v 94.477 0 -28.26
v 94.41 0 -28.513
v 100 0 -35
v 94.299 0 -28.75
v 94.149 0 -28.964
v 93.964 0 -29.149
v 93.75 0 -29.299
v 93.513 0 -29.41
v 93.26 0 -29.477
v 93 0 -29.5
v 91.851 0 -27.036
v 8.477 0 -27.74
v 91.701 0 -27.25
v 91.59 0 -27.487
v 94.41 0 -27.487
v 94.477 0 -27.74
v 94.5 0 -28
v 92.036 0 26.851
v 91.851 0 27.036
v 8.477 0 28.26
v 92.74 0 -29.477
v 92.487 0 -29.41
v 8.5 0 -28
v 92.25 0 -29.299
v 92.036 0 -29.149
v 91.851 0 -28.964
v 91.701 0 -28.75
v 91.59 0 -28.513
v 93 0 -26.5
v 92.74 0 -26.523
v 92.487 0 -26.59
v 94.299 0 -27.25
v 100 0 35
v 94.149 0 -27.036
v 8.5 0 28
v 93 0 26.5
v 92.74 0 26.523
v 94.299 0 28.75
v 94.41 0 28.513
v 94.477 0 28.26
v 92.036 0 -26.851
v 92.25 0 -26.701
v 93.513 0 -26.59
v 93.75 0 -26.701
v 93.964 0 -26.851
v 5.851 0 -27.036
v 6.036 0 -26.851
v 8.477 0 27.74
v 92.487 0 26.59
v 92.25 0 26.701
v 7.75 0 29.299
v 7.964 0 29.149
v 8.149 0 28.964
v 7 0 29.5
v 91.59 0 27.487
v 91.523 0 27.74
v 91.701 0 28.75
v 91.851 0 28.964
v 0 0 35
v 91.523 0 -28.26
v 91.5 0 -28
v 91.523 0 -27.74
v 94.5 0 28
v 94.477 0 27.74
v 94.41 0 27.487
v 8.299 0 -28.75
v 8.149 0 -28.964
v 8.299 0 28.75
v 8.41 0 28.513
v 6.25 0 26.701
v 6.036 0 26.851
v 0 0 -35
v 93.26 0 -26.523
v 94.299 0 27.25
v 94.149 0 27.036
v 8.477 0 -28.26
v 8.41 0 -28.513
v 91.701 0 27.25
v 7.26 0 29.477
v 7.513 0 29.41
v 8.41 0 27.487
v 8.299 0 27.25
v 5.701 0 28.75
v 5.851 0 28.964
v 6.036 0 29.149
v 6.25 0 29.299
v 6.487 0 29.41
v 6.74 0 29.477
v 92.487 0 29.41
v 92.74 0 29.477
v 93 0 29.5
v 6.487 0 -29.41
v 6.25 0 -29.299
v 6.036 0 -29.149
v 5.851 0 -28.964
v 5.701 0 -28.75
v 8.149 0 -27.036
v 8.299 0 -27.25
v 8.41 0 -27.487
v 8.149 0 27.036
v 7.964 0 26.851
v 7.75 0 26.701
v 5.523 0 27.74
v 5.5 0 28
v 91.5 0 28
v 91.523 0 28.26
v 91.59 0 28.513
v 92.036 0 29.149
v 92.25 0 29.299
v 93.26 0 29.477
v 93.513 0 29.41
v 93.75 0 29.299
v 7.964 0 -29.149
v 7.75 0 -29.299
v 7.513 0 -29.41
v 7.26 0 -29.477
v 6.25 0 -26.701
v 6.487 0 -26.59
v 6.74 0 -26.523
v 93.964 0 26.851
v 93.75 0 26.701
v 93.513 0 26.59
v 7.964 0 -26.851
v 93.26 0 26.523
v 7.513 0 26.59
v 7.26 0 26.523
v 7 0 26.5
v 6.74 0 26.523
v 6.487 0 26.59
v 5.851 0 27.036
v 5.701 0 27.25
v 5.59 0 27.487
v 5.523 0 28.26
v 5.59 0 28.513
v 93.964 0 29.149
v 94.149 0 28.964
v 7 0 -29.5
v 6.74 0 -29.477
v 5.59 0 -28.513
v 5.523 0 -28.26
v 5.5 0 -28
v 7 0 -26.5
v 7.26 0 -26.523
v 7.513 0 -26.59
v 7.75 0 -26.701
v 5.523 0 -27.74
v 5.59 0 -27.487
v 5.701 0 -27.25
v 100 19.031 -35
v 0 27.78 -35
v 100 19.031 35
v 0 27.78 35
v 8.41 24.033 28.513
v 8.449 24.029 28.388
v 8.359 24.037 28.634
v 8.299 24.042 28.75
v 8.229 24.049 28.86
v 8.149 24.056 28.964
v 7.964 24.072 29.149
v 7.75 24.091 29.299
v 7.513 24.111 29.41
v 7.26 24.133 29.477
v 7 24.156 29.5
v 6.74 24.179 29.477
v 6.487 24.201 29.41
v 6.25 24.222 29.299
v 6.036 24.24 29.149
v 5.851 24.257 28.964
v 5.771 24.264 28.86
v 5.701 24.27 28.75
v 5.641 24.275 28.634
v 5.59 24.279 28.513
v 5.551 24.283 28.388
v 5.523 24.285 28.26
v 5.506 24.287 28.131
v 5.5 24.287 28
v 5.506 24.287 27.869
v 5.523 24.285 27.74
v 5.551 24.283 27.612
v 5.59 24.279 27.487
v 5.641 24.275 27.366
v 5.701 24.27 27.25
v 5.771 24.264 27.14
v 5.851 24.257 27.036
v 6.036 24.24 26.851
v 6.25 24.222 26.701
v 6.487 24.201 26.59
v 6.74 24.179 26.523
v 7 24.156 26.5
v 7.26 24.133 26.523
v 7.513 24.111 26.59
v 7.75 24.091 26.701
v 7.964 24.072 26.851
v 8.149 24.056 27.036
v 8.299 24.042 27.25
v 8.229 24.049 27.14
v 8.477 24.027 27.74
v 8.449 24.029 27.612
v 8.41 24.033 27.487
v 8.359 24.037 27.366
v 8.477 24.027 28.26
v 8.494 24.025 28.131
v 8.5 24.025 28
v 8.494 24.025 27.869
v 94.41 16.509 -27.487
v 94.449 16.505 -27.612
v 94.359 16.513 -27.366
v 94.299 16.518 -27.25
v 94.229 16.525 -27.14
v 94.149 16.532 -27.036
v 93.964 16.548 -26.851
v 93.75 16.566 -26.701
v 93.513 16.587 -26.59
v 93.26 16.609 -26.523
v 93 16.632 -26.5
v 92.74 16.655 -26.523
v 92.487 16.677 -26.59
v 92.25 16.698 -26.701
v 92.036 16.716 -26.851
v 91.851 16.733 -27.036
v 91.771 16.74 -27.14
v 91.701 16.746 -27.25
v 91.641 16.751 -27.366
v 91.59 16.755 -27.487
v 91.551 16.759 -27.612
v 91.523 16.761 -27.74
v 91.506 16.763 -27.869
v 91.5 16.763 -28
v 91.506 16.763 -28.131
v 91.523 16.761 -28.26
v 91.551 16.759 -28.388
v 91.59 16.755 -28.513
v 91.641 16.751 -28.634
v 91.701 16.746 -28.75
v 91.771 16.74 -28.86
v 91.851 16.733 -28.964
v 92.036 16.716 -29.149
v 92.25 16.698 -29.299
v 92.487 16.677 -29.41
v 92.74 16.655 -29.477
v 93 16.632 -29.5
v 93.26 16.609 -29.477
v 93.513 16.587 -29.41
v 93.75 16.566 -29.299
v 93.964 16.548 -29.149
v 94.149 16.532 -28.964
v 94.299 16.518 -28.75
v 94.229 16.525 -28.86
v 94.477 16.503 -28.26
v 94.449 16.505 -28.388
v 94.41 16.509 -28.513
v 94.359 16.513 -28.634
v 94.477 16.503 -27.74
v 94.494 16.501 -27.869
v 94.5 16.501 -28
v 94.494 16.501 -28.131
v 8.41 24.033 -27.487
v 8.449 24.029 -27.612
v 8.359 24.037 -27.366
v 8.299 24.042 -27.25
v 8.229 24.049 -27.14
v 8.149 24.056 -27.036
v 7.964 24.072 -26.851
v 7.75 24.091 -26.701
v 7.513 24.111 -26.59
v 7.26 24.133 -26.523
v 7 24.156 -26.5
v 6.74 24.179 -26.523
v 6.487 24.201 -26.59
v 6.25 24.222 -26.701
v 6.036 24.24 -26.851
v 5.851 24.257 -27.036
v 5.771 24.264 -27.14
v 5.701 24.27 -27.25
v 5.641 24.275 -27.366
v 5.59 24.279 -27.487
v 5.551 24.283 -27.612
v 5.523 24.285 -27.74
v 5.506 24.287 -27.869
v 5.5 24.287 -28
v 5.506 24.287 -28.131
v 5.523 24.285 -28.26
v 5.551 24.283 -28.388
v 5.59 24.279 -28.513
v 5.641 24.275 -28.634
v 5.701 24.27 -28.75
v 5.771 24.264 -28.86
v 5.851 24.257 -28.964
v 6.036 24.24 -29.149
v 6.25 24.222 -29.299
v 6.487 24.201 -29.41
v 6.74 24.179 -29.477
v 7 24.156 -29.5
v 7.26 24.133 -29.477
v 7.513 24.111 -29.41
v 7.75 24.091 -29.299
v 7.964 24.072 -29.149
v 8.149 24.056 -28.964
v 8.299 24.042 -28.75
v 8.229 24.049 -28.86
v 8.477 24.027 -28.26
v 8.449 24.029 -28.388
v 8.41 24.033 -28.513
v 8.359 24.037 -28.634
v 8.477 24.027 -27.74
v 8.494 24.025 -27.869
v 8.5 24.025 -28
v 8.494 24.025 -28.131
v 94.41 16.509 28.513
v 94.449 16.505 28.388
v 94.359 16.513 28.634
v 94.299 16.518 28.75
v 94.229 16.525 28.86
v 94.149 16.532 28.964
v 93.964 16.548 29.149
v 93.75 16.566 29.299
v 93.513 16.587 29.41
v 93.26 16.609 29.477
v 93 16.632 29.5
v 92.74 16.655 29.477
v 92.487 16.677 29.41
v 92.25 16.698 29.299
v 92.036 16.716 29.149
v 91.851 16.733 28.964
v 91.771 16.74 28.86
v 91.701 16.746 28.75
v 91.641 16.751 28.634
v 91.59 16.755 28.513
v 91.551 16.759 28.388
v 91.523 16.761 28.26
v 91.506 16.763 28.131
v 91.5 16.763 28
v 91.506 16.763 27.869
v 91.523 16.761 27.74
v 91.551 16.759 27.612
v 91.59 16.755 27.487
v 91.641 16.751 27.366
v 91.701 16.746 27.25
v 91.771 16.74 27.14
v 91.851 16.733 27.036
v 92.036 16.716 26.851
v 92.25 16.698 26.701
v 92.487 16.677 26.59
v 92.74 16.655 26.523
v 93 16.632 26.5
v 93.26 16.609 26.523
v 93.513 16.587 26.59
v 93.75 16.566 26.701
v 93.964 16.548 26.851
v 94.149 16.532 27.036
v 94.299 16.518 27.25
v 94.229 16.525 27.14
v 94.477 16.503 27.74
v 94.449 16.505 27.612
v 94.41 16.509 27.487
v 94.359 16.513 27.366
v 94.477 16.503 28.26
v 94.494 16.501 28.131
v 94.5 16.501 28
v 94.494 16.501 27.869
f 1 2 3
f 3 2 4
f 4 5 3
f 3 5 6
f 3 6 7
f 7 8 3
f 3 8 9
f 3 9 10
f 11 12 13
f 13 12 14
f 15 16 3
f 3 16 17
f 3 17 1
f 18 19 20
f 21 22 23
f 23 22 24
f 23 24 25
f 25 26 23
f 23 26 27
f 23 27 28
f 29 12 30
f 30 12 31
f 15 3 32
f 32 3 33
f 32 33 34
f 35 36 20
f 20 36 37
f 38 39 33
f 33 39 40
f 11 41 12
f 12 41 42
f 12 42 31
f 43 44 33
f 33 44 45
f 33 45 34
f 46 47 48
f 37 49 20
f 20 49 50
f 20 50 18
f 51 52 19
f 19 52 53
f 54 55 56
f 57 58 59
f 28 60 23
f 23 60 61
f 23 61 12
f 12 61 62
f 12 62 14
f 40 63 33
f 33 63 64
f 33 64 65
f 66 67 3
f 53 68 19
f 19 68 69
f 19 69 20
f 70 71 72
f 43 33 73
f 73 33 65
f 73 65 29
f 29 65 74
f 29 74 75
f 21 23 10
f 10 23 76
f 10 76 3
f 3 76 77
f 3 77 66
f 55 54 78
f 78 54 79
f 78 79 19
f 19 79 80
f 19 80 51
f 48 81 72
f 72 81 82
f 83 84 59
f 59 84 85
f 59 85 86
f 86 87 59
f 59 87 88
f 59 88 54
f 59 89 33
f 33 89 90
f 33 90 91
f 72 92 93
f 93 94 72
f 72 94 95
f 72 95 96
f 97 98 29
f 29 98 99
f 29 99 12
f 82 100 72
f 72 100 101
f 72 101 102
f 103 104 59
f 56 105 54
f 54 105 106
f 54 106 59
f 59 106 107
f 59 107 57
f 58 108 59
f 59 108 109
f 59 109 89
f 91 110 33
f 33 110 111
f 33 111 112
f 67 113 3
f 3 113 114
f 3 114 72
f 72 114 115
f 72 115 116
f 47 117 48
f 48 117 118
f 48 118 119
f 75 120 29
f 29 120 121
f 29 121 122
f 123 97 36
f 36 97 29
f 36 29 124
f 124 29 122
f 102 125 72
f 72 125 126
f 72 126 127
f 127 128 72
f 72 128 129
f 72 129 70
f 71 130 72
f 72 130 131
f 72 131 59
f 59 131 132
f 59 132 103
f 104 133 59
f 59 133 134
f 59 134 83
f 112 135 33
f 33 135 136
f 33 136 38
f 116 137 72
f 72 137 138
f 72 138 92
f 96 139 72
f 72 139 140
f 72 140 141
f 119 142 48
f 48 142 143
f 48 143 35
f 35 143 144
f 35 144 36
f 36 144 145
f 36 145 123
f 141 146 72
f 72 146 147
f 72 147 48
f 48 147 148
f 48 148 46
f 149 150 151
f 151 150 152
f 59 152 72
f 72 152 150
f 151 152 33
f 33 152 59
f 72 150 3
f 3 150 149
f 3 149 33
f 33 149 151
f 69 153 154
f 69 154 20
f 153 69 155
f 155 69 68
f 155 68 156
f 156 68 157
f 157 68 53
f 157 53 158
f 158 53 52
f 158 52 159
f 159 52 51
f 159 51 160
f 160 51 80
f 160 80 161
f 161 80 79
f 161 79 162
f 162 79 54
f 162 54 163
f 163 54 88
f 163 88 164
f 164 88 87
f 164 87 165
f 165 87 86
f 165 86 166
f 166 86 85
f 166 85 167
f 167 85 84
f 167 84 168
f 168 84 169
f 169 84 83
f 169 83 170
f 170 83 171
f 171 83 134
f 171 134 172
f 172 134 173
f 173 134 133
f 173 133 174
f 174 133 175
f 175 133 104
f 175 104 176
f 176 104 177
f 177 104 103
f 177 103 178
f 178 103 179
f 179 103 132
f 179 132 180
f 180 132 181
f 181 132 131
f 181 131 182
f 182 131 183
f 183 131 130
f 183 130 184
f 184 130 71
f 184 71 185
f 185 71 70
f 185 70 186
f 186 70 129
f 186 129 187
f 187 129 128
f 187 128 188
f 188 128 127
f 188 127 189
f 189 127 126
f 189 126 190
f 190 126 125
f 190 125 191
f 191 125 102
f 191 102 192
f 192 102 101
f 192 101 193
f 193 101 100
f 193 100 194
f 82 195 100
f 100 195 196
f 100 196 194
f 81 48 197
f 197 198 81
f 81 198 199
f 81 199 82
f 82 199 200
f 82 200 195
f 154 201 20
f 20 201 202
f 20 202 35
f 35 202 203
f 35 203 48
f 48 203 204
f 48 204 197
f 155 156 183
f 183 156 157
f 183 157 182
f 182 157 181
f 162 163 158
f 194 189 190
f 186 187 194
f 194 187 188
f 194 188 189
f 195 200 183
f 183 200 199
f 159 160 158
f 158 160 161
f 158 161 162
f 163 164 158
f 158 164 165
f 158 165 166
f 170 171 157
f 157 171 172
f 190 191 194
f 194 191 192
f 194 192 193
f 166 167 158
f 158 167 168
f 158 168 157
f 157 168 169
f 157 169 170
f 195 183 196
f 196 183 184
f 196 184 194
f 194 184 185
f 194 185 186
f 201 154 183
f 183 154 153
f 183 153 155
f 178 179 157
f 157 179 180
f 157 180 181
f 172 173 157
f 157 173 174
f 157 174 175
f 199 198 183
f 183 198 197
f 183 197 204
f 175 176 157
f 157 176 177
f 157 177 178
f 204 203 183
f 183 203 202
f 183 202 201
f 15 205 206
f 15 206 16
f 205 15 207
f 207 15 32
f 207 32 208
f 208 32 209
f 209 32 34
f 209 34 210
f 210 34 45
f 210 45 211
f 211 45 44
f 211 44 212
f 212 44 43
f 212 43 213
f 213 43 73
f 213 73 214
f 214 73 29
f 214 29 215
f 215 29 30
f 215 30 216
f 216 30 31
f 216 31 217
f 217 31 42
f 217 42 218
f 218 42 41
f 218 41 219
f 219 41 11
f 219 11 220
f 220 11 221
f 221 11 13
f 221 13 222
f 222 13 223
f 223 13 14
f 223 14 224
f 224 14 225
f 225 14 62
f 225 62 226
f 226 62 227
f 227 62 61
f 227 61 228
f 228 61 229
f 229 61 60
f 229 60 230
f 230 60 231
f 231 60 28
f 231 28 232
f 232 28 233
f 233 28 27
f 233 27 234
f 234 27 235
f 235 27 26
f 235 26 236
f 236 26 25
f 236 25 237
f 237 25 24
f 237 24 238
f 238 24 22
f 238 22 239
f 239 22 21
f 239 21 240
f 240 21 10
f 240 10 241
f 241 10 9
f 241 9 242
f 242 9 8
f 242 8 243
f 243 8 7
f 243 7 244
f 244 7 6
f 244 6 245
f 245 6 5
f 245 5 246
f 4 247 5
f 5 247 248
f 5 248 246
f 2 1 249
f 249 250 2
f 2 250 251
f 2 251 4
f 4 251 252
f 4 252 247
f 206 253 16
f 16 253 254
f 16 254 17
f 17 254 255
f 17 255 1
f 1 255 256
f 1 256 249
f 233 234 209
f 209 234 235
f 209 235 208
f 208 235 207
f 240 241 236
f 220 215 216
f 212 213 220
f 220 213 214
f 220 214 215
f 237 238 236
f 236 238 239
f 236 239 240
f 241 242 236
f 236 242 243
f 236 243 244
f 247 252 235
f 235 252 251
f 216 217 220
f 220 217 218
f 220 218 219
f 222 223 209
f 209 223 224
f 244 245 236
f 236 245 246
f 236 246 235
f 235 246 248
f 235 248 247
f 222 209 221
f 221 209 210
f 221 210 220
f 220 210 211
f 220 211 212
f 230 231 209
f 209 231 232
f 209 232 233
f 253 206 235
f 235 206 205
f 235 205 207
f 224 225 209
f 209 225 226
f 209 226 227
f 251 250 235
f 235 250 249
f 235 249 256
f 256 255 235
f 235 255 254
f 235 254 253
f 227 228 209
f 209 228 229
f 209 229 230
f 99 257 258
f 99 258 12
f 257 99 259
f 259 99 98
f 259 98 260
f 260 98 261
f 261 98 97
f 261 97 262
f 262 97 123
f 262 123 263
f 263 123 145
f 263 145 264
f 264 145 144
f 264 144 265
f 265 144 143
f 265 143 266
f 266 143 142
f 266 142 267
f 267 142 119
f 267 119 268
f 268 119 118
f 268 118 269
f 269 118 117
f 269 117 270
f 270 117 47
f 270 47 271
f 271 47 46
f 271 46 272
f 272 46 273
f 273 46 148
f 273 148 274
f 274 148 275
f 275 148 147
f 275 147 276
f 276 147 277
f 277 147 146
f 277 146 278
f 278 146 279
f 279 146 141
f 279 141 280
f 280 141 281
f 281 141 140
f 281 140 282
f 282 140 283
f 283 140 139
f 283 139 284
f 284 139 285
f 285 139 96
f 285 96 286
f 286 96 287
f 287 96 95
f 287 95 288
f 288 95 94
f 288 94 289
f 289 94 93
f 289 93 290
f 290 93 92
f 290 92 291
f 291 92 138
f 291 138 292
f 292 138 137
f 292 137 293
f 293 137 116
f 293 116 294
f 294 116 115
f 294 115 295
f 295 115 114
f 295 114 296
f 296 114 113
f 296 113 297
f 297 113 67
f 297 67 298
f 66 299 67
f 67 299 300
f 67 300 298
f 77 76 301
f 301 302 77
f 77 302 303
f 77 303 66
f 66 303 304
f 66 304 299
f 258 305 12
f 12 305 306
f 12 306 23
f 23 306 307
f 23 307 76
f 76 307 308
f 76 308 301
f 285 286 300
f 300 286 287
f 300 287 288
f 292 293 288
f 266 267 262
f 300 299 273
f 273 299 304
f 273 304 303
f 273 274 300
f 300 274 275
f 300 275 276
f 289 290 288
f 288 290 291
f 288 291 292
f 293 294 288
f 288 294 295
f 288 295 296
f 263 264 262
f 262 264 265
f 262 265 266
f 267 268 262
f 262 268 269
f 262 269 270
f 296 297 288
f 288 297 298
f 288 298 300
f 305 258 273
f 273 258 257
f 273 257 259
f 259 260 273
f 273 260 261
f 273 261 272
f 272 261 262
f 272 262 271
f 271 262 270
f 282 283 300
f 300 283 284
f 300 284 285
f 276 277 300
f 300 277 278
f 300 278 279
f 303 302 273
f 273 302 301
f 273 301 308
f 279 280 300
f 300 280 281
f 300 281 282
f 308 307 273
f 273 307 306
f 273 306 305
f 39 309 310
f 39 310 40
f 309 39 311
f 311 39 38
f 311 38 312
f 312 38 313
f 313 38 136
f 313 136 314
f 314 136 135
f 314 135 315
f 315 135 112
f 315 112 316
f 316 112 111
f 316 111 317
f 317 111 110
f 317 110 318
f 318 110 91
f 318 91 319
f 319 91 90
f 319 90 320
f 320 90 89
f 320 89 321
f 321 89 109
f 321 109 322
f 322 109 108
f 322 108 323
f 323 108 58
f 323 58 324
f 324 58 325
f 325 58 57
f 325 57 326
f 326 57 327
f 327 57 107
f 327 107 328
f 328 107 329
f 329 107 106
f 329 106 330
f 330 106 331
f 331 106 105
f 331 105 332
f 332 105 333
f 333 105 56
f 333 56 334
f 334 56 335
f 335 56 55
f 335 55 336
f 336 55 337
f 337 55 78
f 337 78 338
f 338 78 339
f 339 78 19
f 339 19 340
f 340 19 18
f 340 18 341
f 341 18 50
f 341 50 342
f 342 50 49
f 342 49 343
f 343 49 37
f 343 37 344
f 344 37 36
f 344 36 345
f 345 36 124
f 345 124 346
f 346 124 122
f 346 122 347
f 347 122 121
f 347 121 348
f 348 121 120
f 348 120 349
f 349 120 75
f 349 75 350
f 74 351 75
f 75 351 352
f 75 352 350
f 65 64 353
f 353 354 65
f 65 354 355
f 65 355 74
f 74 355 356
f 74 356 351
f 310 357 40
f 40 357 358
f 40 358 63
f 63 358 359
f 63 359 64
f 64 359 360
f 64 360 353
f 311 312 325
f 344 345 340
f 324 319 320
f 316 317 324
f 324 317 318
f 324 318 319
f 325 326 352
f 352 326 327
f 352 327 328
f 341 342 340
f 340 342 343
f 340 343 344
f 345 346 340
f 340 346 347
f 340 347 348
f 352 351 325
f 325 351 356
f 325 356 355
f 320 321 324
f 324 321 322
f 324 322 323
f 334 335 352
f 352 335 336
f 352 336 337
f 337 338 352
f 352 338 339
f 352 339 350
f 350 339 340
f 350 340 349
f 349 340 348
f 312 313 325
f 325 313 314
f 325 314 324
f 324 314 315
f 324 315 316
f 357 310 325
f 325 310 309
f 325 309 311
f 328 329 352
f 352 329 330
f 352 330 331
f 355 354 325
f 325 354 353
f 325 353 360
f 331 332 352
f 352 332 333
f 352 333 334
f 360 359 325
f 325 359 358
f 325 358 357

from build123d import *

# Parameters (mm, degrees)
BOSS_EXTRUDE1_DEPTH = 35
SKETCH2_W           = 217.526852971
SKETCH2_H           = 70
CUT_EXTRUDE1_DEPTH  = 70
CUT_EXTRUDE2_REACH  = 111.53
SKETCH3_R           = 1.5


with BuildPart() as part:
    # Sketch1 → Boss-Extrude1 (new, symmetric)
    with BuildSketch(Plane.XY):
        Polygon((0, 0), (0, 27.78), (317.526852971, 0), align=None)
    extrude(amount=BOSS_EXTRUDE1_DEPTH, both=True)

    # Sketch2 → Cut-Extrude1 (cut)
    with BuildSketch(Plane.XZ):
        with Locations((208.763426486, 0)):
            Rectangle(SKETCH2_W, SKETCH2_H)
    extrude(amount=-CUT_EXTRUDE1_DEPTH, mode=Mode.SUBTRACT)

    # Cut-Extrude2: up to this plane
    cut_extrude2_end = Plane(origin=(-0.261467228, 24.791415906, 35), z_dir=(-0.08715574274765117, -0.9961946980917462, 0))
    # Sketch3 → Cut-Extrude2 (cut, up to the surface)
    with BuildSketch(Plane.XZ, mode=Mode.PRIVATE) as cut_extrude2_sk1:
        with Locations((7, 28)):
            Circle(SKETCH3_R)
    cut_extrude2_tool1 = split(extrude(cut_extrude2_sk1.sketch, amount=-CUT_EXTRUDE2_REACH, mode=Mode.PRIVATE), bisect_by=cut_extrude2_end, keep=Keep.BOTH, mode=Mode.PRIVATE)
    add(cut_extrude2_tool1.solids().sort_by_distance((7, 0, 28))[0], mode=Mode.SUBTRACT)
    # Sketch3 → Cut-Extrude2 (cut, up to the surface)
    with BuildSketch(Plane.XZ, mode=Mode.PRIVATE) as cut_extrude2_sk2:
        with Locations((93, 28)):
            Circle(SKETCH3_R)
    cut_extrude2_tool2 = split(extrude(cut_extrude2_sk2.sketch, amount=-CUT_EXTRUDE2_REACH, mode=Mode.PRIVATE), bisect_by=cut_extrude2_end, keep=Keep.BOTH, mode=Mode.PRIVATE)
    add(cut_extrude2_tool2.solids().sort_by_distance((93, 0, 28))[0], mode=Mode.SUBTRACT)
    # Sketch3 → Cut-Extrude2 (cut, up to the surface)
    with BuildSketch(Plane.XZ, mode=Mode.PRIVATE) as cut_extrude2_sk3:
        with Locations((7, -28)):
            Circle(SKETCH3_R)
    cut_extrude2_tool3 = split(extrude(cut_extrude2_sk3.sketch, amount=-CUT_EXTRUDE2_REACH, mode=Mode.PRIVATE), bisect_by=cut_extrude2_end, keep=Keep.BOTH, mode=Mode.PRIVATE)
    add(cut_extrude2_tool3.solids().sort_by_distance((7, 0, -28))[0], mode=Mode.SUBTRACT)
    # Sketch3 → Cut-Extrude2 (cut, up to the surface)
    with BuildSketch(Plane.XZ, mode=Mode.PRIVATE) as cut_extrude2_sk4:
        with Locations((93, -28)):
            Circle(SKETCH3_R)
    cut_extrude2_tool4 = split(extrude(cut_extrude2_sk4.sketch, amount=-CUT_EXTRUDE2_REACH, mode=Mode.PRIVATE), bisect_by=cut_extrude2_end, keep=Keep.BOTH, mode=Mode.PRIVATE)
    add(cut_extrude2_tool4.solids().sort_by_distance((93, 0, -28))[0], mode=Mode.SUBTRACT)


solid = part.part
